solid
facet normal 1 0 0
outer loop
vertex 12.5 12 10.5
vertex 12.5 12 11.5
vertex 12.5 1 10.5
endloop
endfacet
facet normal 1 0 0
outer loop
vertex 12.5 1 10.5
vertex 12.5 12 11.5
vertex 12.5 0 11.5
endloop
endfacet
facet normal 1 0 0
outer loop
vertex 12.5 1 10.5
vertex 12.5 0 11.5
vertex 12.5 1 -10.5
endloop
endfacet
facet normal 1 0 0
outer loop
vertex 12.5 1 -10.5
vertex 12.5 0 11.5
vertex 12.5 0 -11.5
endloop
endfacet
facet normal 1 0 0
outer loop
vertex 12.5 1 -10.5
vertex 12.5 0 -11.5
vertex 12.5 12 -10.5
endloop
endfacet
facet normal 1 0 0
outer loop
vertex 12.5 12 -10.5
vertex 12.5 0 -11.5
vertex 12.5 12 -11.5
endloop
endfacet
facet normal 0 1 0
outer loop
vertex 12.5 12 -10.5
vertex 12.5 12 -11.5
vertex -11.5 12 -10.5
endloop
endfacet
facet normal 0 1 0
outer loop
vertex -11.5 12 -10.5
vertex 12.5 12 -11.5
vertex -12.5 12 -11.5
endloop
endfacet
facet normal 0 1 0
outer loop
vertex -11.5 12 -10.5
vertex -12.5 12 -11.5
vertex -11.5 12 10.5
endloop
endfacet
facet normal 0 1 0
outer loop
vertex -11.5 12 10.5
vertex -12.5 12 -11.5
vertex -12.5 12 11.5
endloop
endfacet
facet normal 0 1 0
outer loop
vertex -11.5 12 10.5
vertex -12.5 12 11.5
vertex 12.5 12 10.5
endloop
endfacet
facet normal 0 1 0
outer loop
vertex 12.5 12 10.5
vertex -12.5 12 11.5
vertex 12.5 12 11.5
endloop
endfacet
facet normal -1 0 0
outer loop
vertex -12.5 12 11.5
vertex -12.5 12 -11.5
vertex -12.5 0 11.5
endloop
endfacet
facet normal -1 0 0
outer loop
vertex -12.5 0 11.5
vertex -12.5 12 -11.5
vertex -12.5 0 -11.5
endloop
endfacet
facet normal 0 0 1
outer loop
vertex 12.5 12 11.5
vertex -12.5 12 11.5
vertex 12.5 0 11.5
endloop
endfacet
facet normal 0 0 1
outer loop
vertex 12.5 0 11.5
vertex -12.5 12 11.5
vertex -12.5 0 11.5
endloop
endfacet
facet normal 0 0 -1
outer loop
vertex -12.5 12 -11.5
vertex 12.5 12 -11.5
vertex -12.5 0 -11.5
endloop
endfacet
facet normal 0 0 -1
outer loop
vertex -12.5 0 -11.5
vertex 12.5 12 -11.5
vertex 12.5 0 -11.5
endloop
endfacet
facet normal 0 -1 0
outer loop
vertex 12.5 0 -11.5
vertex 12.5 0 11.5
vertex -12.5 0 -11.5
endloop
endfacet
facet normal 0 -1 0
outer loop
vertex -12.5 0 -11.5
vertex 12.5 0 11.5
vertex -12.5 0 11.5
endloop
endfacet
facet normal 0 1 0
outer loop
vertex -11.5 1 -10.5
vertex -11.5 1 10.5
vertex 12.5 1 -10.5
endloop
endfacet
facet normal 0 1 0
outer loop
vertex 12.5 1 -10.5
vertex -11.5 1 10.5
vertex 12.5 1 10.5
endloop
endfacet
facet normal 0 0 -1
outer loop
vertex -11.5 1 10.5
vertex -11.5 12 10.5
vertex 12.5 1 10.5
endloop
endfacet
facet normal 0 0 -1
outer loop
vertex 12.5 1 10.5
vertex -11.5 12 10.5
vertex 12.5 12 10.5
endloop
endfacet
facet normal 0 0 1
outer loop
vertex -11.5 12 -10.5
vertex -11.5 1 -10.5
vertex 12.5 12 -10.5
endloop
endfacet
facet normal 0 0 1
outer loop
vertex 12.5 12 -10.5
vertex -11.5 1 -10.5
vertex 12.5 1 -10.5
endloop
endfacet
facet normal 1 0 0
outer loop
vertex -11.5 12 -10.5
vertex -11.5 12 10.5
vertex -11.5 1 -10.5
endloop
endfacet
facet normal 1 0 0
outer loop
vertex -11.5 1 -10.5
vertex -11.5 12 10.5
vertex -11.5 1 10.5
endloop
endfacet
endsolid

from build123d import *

# Parameters (mm, degrees)
SKETCH_1_W          = 25
SKETCH_1_H          = 23
EXTRUDE_1_DEPTH     = 12
CUT_EXTRUDE_START   = 1
SKETCH_2_W          = 25
SKETCH_2_H          = 21
CUT_EXTRUDE_1_DEPTH = 11
EXTRUDE_START       = 12
SKETCH_6_W          = 25
SKETCH_6_H          = 23
EXTRUDE_3_DEPTH     = 1
CUT_EXTRUDE_START_2 = 13
SKETCH_8_R          = 9.75
CUT_EXTRUDE_2_DEPTH = 1
SKETCH_9_W          = 25
SKETCH_9_H          = 23
CUT_EXTRUDE_3_DEPTH = 1


with BuildPart() as part:
    # 스케치1 → 보스-돌출1 (new body)
    with BuildSketch(Plane(origin=(0, 0, 0), x_dir=(1, 0, 0), z_dir=(0, 1, 0))):
        Rectangle(SKETCH_1_W, SKETCH_1_H)
    extrude(amount=EXTRUDE_1_DEPTH)

    # 스케치2 → 컷-돌출1 (cut)
    with BuildSketch(Plane(origin=(0, 0, 0), x_dir=(1, 0, 0), z_dir=(0, 1, 0)).offset(CUT_EXTRUDE_START)):
        with Locations((1, 0)):
            Rectangle(SKETCH_2_W, SKETCH_2_H)
    extrude(amount=CUT_EXTRUDE_1_DEPTH, mode=Mode.SUBTRACT)


with BuildPart() as body_2:
    # 스케치6 → 보스-돌출3 (new body)
    with BuildSketch(Plane(origin=(0, 0, 0), x_dir=(1, 0, 0), z_dir=(0, 1, 0)).offset(EXTRUDE_START)):
        Rectangle(SKETCH_6_W, SKETCH_6_H)
    extrude(amount=EXTRUDE_3_DEPTH)

    # 스케치8 → 컷-돌출2 (cut)
    with BuildSketch(Plane(origin=(0, 0, 0), x_dir=(1, 0, 0), z_dir=(0, 1, 0)).offset(CUT_EXTRUDE_START_2)):
        with Locations(Location((-0.75, 0, 0), (0, 0, 270))):
            Circle(SKETCH_8_R)
    extrude(amount=-CUT_EXTRUDE_2_DEPTH, mode=Mode.SUBTRACT)

    # 스케치9 → 컷-돌출3 (cut)
    with BuildSketch(Plane(origin=(0, 13, 0), x_dir=(1, 0, 0), z_dir=(0, 1, 0))):
        Rectangle(SKETCH_9_W, SKETCH_9_H)
    extrude(amount=-CUT_EXTRUDE_3_DEPTH, mode=Mode.SUBTRACT)


solid = part.part
